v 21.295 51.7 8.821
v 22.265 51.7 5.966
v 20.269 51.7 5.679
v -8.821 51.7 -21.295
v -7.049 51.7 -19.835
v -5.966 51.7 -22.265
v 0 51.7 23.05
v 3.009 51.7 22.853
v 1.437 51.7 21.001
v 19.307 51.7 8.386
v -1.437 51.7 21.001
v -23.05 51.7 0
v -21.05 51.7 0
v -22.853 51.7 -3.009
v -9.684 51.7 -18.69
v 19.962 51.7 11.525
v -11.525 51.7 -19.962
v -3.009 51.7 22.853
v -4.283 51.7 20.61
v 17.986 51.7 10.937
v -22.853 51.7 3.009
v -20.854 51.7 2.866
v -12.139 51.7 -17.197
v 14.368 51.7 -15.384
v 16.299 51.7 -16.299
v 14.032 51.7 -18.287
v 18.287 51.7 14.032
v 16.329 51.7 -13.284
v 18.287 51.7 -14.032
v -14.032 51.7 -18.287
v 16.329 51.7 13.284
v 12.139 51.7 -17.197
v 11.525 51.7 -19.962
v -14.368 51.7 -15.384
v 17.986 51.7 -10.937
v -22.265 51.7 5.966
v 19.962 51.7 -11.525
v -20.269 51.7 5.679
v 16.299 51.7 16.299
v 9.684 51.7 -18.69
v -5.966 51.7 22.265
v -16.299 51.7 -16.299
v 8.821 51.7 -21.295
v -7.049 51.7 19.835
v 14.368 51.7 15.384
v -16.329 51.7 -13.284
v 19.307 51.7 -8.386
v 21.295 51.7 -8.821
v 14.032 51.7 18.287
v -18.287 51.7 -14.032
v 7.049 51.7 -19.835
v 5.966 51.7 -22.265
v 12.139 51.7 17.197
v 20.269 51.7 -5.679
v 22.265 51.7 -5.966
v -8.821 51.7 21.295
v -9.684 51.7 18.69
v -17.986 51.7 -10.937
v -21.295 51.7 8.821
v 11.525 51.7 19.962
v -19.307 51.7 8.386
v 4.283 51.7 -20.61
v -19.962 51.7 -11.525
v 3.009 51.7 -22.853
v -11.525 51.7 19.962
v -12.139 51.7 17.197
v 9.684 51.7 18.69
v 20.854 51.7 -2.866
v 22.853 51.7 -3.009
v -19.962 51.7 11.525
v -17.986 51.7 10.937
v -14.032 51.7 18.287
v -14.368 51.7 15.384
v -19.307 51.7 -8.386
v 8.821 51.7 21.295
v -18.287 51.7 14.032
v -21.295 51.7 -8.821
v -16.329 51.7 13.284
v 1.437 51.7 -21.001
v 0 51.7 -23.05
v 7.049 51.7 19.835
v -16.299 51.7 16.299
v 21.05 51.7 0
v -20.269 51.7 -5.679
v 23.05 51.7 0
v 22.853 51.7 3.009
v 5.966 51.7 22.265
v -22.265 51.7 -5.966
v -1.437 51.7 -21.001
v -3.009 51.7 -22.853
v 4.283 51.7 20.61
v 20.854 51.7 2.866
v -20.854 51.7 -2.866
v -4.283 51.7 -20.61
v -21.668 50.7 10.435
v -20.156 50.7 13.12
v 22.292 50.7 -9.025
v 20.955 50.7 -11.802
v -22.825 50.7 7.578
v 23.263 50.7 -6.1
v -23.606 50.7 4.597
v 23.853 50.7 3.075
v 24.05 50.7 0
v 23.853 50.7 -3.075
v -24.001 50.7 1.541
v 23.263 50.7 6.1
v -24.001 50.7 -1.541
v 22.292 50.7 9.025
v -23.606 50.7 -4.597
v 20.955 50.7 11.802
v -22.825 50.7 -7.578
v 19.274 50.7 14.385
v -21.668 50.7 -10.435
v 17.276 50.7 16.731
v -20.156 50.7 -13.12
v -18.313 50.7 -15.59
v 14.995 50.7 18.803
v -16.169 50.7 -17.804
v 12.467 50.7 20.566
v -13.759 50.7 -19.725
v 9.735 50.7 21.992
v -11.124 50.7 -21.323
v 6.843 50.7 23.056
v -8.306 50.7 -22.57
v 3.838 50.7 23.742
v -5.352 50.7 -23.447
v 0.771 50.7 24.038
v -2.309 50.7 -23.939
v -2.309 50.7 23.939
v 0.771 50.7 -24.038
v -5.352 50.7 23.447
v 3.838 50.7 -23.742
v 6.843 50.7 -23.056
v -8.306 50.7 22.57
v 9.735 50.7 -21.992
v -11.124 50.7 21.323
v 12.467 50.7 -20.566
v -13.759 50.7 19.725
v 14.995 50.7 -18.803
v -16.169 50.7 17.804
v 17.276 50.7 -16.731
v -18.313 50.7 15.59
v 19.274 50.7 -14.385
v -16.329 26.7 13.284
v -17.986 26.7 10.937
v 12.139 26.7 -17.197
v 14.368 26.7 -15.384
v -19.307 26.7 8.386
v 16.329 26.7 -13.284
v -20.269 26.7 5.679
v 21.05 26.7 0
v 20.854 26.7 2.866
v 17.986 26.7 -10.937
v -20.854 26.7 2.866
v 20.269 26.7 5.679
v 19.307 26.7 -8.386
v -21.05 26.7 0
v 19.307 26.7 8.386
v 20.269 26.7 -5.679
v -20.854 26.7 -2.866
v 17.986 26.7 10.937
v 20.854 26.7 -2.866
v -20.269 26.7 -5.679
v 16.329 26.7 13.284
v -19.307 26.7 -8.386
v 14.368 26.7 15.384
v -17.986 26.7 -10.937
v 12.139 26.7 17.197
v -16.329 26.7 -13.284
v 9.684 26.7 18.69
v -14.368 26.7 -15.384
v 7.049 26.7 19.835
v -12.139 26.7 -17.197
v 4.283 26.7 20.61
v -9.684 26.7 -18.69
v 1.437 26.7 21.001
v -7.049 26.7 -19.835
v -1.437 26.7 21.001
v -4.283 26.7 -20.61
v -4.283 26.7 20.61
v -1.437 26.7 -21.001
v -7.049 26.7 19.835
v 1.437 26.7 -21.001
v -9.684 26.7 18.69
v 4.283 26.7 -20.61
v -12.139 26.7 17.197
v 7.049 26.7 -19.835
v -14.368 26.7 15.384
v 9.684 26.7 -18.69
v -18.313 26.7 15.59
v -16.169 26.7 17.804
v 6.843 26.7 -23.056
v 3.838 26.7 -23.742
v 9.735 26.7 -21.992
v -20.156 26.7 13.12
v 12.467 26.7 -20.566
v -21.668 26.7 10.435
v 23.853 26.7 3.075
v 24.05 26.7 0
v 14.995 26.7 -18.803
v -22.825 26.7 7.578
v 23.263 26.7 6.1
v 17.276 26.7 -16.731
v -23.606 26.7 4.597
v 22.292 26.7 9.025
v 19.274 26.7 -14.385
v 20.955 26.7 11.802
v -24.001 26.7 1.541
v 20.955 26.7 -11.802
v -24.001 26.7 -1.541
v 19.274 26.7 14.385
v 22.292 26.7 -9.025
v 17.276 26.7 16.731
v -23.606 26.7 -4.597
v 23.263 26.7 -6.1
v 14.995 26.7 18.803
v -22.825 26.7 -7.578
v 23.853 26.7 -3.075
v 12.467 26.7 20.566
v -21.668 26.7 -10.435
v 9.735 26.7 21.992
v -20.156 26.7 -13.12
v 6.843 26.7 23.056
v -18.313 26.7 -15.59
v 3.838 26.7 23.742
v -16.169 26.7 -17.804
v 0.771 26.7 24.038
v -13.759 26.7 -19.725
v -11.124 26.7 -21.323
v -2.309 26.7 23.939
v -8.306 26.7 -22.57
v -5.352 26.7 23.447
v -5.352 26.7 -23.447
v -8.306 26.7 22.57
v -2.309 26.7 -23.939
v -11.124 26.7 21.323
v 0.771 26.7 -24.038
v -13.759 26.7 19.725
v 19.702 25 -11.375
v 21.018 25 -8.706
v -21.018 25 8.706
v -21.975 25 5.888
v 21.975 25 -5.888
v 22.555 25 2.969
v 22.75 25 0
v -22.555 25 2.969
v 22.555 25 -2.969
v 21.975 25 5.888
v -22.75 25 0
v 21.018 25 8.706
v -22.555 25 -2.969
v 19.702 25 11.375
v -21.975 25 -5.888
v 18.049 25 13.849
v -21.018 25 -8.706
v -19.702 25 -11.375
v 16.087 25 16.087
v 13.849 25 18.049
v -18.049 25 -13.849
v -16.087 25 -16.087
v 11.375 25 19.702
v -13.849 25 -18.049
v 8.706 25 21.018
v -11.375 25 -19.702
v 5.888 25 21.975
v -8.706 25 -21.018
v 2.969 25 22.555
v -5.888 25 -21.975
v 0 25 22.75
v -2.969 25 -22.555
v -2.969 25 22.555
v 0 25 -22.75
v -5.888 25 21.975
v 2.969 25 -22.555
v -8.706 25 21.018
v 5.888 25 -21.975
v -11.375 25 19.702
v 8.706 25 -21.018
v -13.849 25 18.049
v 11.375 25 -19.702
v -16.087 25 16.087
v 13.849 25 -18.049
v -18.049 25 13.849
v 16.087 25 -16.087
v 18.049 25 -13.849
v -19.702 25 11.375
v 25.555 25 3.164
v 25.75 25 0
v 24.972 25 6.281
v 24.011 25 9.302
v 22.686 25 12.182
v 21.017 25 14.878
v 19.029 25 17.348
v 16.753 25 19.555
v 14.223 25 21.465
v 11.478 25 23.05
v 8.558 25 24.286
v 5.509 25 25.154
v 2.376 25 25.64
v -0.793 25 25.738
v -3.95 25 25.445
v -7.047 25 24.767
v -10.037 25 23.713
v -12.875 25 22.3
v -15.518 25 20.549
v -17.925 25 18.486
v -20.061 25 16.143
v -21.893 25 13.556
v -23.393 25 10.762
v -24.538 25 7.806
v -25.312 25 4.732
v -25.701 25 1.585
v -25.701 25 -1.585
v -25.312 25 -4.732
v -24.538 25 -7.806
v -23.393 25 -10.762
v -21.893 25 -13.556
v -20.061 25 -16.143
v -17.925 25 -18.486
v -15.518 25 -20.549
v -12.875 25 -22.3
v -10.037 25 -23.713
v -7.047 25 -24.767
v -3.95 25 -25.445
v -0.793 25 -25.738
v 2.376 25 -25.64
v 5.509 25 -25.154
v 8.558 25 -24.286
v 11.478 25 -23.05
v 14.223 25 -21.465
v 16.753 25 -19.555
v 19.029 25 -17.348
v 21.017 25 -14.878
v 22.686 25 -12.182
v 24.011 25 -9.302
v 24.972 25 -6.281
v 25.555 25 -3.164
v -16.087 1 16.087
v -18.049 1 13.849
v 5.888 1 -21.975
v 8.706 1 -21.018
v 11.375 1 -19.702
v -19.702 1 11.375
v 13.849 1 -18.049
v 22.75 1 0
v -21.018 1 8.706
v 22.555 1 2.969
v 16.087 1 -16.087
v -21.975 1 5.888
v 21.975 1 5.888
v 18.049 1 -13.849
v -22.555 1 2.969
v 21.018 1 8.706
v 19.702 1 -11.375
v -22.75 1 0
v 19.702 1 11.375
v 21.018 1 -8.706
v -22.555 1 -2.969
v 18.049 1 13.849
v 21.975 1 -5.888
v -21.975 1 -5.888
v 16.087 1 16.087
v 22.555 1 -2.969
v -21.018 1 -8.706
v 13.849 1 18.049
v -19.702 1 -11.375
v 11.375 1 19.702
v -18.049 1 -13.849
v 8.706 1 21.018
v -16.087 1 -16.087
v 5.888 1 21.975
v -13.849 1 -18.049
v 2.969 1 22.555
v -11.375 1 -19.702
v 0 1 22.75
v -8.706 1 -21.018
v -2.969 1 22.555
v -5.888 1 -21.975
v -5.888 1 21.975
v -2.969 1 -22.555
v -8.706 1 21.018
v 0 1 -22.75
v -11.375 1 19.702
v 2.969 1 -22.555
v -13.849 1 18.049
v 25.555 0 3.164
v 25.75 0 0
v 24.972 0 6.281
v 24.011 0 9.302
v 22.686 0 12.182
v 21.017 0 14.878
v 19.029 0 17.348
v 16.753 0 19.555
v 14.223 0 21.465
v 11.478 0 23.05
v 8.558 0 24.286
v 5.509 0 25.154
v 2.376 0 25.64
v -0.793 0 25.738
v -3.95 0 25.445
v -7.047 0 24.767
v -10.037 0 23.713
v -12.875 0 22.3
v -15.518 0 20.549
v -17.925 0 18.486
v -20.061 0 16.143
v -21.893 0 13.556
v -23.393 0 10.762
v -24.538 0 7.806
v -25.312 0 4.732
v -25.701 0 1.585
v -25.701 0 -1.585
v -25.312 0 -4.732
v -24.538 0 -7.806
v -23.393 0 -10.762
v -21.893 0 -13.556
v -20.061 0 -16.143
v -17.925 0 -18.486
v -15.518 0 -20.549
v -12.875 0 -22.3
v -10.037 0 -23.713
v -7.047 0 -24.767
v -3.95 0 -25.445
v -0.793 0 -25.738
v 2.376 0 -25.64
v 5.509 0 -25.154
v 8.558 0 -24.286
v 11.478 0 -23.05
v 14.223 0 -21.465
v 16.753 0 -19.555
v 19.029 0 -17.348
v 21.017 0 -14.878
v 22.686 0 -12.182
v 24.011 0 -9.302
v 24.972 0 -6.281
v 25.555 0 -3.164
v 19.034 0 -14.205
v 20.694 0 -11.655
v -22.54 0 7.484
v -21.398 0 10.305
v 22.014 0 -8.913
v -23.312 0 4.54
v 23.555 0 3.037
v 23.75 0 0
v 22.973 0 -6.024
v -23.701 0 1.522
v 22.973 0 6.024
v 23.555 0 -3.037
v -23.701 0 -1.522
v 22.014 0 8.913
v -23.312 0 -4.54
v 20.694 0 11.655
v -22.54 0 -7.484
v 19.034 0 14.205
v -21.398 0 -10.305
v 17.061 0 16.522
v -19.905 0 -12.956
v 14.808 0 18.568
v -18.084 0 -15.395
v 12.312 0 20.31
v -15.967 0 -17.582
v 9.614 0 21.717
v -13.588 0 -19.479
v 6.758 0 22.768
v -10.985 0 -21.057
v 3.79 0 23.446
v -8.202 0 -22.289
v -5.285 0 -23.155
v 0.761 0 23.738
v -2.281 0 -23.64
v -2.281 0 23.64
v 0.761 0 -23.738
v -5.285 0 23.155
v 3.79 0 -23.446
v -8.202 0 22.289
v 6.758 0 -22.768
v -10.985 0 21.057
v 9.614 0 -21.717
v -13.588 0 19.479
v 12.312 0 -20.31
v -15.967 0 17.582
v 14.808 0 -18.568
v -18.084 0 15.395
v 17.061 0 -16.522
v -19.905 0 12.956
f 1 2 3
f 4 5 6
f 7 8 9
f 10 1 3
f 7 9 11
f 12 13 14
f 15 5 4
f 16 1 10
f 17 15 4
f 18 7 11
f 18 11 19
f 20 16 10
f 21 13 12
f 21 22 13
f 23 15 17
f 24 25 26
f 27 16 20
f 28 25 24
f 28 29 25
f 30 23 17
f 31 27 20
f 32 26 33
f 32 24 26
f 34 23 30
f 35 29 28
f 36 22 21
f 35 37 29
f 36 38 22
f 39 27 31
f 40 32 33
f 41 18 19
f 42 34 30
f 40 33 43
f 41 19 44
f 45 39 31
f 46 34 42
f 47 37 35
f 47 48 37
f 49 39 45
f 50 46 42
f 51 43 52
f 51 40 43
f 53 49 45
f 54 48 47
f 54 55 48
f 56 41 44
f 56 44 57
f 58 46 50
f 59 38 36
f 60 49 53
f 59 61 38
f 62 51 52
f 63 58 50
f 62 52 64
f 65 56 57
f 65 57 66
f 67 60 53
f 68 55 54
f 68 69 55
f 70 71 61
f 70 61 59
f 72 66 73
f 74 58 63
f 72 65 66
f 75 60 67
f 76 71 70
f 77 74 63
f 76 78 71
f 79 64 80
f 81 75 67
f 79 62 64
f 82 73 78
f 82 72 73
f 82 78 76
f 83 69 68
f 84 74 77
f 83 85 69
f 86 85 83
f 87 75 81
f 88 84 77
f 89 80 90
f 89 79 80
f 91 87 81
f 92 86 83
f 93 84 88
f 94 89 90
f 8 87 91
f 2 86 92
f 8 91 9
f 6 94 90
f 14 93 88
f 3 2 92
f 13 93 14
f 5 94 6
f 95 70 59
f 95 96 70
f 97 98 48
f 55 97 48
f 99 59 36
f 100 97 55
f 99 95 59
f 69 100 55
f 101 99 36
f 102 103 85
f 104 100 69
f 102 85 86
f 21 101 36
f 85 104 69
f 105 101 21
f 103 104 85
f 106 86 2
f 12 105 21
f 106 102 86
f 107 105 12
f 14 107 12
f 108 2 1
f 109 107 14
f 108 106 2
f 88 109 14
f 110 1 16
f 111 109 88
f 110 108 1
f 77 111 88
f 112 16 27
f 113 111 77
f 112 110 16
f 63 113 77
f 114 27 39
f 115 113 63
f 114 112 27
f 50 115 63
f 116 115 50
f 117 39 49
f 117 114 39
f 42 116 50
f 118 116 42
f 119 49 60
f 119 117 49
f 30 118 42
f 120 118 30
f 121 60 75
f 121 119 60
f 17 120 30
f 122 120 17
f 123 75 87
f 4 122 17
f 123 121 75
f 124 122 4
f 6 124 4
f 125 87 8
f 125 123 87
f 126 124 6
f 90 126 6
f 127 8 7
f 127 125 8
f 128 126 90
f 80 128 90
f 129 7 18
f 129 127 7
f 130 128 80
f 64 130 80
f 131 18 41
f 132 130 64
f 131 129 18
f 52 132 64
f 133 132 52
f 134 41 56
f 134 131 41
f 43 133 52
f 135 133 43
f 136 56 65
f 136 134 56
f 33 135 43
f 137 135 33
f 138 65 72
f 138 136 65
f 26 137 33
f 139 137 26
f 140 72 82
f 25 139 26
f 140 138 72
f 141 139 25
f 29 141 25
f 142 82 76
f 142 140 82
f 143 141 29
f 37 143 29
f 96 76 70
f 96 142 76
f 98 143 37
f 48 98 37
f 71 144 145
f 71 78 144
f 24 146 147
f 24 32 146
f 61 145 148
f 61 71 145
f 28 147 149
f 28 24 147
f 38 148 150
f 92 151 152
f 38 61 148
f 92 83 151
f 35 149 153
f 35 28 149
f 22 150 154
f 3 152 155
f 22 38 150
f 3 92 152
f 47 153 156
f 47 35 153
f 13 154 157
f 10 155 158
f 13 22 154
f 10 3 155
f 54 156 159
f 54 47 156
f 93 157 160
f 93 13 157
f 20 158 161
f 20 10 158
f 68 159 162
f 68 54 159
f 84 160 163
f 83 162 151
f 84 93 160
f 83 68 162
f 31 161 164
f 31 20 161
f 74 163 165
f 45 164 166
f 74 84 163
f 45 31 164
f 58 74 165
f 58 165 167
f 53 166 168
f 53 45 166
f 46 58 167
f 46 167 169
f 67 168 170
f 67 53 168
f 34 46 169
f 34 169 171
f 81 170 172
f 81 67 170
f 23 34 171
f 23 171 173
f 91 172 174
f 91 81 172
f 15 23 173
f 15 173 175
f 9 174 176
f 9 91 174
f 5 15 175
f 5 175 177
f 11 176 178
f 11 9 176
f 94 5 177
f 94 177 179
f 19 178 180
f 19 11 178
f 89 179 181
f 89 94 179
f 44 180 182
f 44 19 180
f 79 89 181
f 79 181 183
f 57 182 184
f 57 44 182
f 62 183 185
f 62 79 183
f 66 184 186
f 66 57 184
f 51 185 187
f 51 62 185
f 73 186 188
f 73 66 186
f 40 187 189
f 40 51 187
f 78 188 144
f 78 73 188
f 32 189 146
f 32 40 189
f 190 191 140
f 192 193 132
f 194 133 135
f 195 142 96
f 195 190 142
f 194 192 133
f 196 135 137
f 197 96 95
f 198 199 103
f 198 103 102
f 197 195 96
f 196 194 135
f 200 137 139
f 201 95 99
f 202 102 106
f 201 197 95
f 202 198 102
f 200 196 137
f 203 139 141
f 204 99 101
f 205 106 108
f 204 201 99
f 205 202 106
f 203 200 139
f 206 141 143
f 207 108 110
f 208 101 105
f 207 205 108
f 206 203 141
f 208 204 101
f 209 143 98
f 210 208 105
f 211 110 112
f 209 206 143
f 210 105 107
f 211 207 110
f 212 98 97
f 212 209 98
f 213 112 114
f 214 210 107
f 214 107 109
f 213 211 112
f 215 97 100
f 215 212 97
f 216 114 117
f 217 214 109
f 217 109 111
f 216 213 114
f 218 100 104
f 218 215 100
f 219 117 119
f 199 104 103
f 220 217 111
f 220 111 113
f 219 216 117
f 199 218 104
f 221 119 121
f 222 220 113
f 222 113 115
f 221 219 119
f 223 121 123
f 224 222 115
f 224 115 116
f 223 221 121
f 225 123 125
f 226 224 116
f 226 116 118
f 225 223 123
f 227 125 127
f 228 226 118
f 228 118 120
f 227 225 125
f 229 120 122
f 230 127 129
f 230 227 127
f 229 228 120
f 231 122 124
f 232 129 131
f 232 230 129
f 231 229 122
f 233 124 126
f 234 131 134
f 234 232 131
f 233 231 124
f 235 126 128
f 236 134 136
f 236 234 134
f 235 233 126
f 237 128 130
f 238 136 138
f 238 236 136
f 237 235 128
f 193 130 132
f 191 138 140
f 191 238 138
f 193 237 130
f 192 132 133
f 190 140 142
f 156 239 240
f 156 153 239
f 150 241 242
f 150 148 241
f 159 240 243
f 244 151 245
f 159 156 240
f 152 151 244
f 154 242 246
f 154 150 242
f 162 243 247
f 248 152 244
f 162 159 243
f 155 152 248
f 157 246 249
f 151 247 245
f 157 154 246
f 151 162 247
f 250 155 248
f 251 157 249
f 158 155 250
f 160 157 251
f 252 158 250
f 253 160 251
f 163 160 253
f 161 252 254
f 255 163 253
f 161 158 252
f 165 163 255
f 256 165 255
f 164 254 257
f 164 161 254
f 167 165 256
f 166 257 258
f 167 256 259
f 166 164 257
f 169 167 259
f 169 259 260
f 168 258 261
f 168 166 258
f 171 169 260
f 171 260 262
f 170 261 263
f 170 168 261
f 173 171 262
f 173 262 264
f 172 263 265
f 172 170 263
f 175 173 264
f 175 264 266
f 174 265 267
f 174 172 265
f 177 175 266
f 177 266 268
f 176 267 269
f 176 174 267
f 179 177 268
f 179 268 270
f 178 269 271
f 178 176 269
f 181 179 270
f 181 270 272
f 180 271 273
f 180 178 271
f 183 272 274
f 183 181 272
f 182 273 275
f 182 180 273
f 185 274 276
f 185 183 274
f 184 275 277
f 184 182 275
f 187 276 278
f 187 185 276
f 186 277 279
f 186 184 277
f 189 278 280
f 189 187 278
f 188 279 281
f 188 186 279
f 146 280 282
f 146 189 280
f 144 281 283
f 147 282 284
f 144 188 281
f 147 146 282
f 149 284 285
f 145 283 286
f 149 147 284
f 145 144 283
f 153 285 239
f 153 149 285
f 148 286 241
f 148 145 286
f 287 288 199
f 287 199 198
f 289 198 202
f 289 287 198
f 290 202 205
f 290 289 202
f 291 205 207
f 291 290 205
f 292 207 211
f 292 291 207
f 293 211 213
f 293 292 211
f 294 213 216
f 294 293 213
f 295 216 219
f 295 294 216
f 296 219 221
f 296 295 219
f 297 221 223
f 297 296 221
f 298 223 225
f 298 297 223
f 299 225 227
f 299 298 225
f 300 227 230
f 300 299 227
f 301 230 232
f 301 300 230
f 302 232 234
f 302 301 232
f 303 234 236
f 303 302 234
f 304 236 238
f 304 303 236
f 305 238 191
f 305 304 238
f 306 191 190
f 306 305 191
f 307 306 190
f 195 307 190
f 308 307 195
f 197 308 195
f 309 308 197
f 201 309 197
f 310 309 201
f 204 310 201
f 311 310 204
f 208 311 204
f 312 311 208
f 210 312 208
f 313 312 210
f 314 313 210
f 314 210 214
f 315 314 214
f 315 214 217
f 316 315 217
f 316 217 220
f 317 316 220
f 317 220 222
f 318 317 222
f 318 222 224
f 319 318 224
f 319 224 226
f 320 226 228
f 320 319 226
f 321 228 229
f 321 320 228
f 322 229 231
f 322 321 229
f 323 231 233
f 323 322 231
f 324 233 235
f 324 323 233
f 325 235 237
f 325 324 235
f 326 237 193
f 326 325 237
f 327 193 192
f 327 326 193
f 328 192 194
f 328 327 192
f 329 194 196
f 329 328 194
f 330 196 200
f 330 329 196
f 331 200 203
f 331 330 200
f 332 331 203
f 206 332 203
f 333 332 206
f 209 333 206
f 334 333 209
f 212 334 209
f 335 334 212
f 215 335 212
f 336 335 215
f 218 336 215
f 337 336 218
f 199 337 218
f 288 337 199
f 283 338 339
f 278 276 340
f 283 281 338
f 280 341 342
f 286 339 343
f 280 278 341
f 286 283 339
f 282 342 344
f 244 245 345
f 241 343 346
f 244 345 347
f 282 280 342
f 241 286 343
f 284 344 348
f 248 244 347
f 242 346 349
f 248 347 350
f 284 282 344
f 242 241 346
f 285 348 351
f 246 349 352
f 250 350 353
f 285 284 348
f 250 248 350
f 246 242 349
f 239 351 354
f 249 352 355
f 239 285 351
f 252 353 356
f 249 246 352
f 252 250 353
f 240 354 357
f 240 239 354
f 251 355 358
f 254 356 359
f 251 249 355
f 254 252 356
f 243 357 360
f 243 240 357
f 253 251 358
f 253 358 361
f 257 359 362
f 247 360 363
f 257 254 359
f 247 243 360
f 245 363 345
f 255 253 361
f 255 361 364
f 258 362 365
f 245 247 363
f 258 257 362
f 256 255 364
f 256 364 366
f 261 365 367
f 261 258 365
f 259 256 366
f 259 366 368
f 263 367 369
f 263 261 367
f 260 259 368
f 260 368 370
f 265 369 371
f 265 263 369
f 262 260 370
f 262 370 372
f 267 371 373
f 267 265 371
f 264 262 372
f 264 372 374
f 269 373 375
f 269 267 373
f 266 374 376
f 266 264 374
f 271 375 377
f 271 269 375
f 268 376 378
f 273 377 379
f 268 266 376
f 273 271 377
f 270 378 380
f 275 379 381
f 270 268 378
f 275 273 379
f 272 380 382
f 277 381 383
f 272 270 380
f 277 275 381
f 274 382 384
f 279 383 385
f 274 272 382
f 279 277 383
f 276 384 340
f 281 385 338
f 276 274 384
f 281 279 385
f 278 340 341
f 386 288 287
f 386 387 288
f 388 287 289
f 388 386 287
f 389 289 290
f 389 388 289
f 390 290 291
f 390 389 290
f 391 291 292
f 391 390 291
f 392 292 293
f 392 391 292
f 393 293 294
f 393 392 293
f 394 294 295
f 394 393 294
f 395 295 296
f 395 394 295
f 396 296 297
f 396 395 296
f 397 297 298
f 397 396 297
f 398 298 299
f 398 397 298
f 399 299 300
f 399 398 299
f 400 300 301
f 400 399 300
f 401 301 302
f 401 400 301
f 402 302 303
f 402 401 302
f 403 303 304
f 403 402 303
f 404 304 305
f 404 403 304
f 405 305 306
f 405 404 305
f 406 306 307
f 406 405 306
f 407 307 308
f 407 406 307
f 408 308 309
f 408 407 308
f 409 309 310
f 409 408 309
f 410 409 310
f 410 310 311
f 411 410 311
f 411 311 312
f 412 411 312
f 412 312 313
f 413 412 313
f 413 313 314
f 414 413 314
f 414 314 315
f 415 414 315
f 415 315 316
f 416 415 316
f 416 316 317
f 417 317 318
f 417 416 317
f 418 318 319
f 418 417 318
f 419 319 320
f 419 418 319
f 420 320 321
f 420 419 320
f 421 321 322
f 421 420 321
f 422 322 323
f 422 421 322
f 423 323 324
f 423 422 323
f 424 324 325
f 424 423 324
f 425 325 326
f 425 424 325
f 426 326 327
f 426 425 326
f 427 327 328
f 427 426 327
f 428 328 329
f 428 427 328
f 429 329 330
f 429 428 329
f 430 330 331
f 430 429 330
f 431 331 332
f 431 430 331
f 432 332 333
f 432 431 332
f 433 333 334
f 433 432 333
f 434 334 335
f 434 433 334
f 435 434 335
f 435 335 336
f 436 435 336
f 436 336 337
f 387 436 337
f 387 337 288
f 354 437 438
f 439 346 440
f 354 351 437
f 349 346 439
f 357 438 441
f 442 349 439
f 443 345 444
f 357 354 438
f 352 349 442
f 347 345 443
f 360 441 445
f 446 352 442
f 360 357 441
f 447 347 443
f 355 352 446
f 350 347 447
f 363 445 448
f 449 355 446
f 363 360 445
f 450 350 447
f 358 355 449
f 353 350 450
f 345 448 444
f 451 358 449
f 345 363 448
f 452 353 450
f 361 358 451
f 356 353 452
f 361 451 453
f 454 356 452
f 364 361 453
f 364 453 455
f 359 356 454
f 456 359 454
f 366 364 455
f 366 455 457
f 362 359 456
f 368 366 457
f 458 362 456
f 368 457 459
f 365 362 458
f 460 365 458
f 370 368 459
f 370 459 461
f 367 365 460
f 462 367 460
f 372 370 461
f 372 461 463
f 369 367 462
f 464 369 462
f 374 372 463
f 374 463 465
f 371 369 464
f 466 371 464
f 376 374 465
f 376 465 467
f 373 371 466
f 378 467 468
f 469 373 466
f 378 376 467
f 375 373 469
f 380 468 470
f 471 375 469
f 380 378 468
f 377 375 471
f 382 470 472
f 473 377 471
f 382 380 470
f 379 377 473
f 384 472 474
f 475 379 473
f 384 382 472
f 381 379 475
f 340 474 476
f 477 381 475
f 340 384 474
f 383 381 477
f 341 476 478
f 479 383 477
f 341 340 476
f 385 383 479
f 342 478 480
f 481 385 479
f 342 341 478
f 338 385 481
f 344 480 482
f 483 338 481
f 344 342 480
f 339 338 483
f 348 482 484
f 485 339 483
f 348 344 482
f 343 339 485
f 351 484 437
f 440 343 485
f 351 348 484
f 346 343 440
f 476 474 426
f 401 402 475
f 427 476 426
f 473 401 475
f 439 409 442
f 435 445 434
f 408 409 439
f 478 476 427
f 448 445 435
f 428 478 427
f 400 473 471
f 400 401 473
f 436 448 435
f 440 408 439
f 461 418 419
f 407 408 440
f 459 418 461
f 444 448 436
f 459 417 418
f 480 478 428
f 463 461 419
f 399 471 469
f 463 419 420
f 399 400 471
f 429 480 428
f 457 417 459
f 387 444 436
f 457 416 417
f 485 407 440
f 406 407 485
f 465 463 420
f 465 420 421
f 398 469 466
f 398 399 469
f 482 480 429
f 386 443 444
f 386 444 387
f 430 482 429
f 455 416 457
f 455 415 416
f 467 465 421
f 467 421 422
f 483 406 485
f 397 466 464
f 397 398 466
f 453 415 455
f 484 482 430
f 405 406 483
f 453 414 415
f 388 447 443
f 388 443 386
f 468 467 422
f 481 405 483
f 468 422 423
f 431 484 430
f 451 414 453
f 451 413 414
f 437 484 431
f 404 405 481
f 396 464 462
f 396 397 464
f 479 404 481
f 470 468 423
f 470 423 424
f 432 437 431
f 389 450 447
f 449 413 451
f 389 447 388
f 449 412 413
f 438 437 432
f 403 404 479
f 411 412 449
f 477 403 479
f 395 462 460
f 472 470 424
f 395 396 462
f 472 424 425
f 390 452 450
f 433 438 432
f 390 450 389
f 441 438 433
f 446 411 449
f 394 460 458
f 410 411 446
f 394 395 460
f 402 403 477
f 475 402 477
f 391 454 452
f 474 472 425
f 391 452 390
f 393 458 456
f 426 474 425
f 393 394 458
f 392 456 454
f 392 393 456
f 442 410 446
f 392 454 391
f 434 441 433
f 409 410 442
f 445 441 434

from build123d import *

# Parameters (mm, degrees)
CHAMFER_SIZE = 1


with BuildPart() as part:
    # Sketch → Revolution (revolve)
    with BuildSketch(Plane.XY):
        Polygon((21.05, 51.7), (24.05, 51.7), (24.05, 26.7), (25.75, 25), (25.75, 0), (22.75, 0), (22.75, 25), (21.05, 26.7), align=None)
    revolve(axis=Axis((0, 0, 0), (0, 1, 0)))

    # Chamfer
    chamfer_edges = [part.edges().sort_by_distance(p)[0] for p in [
        (-24.05, 51.7, 0),
        (-22.75, 0, 0),
    ]]
    chamfer(chamfer_edges, length=CHAMFER_SIZE)


solid = part.part
